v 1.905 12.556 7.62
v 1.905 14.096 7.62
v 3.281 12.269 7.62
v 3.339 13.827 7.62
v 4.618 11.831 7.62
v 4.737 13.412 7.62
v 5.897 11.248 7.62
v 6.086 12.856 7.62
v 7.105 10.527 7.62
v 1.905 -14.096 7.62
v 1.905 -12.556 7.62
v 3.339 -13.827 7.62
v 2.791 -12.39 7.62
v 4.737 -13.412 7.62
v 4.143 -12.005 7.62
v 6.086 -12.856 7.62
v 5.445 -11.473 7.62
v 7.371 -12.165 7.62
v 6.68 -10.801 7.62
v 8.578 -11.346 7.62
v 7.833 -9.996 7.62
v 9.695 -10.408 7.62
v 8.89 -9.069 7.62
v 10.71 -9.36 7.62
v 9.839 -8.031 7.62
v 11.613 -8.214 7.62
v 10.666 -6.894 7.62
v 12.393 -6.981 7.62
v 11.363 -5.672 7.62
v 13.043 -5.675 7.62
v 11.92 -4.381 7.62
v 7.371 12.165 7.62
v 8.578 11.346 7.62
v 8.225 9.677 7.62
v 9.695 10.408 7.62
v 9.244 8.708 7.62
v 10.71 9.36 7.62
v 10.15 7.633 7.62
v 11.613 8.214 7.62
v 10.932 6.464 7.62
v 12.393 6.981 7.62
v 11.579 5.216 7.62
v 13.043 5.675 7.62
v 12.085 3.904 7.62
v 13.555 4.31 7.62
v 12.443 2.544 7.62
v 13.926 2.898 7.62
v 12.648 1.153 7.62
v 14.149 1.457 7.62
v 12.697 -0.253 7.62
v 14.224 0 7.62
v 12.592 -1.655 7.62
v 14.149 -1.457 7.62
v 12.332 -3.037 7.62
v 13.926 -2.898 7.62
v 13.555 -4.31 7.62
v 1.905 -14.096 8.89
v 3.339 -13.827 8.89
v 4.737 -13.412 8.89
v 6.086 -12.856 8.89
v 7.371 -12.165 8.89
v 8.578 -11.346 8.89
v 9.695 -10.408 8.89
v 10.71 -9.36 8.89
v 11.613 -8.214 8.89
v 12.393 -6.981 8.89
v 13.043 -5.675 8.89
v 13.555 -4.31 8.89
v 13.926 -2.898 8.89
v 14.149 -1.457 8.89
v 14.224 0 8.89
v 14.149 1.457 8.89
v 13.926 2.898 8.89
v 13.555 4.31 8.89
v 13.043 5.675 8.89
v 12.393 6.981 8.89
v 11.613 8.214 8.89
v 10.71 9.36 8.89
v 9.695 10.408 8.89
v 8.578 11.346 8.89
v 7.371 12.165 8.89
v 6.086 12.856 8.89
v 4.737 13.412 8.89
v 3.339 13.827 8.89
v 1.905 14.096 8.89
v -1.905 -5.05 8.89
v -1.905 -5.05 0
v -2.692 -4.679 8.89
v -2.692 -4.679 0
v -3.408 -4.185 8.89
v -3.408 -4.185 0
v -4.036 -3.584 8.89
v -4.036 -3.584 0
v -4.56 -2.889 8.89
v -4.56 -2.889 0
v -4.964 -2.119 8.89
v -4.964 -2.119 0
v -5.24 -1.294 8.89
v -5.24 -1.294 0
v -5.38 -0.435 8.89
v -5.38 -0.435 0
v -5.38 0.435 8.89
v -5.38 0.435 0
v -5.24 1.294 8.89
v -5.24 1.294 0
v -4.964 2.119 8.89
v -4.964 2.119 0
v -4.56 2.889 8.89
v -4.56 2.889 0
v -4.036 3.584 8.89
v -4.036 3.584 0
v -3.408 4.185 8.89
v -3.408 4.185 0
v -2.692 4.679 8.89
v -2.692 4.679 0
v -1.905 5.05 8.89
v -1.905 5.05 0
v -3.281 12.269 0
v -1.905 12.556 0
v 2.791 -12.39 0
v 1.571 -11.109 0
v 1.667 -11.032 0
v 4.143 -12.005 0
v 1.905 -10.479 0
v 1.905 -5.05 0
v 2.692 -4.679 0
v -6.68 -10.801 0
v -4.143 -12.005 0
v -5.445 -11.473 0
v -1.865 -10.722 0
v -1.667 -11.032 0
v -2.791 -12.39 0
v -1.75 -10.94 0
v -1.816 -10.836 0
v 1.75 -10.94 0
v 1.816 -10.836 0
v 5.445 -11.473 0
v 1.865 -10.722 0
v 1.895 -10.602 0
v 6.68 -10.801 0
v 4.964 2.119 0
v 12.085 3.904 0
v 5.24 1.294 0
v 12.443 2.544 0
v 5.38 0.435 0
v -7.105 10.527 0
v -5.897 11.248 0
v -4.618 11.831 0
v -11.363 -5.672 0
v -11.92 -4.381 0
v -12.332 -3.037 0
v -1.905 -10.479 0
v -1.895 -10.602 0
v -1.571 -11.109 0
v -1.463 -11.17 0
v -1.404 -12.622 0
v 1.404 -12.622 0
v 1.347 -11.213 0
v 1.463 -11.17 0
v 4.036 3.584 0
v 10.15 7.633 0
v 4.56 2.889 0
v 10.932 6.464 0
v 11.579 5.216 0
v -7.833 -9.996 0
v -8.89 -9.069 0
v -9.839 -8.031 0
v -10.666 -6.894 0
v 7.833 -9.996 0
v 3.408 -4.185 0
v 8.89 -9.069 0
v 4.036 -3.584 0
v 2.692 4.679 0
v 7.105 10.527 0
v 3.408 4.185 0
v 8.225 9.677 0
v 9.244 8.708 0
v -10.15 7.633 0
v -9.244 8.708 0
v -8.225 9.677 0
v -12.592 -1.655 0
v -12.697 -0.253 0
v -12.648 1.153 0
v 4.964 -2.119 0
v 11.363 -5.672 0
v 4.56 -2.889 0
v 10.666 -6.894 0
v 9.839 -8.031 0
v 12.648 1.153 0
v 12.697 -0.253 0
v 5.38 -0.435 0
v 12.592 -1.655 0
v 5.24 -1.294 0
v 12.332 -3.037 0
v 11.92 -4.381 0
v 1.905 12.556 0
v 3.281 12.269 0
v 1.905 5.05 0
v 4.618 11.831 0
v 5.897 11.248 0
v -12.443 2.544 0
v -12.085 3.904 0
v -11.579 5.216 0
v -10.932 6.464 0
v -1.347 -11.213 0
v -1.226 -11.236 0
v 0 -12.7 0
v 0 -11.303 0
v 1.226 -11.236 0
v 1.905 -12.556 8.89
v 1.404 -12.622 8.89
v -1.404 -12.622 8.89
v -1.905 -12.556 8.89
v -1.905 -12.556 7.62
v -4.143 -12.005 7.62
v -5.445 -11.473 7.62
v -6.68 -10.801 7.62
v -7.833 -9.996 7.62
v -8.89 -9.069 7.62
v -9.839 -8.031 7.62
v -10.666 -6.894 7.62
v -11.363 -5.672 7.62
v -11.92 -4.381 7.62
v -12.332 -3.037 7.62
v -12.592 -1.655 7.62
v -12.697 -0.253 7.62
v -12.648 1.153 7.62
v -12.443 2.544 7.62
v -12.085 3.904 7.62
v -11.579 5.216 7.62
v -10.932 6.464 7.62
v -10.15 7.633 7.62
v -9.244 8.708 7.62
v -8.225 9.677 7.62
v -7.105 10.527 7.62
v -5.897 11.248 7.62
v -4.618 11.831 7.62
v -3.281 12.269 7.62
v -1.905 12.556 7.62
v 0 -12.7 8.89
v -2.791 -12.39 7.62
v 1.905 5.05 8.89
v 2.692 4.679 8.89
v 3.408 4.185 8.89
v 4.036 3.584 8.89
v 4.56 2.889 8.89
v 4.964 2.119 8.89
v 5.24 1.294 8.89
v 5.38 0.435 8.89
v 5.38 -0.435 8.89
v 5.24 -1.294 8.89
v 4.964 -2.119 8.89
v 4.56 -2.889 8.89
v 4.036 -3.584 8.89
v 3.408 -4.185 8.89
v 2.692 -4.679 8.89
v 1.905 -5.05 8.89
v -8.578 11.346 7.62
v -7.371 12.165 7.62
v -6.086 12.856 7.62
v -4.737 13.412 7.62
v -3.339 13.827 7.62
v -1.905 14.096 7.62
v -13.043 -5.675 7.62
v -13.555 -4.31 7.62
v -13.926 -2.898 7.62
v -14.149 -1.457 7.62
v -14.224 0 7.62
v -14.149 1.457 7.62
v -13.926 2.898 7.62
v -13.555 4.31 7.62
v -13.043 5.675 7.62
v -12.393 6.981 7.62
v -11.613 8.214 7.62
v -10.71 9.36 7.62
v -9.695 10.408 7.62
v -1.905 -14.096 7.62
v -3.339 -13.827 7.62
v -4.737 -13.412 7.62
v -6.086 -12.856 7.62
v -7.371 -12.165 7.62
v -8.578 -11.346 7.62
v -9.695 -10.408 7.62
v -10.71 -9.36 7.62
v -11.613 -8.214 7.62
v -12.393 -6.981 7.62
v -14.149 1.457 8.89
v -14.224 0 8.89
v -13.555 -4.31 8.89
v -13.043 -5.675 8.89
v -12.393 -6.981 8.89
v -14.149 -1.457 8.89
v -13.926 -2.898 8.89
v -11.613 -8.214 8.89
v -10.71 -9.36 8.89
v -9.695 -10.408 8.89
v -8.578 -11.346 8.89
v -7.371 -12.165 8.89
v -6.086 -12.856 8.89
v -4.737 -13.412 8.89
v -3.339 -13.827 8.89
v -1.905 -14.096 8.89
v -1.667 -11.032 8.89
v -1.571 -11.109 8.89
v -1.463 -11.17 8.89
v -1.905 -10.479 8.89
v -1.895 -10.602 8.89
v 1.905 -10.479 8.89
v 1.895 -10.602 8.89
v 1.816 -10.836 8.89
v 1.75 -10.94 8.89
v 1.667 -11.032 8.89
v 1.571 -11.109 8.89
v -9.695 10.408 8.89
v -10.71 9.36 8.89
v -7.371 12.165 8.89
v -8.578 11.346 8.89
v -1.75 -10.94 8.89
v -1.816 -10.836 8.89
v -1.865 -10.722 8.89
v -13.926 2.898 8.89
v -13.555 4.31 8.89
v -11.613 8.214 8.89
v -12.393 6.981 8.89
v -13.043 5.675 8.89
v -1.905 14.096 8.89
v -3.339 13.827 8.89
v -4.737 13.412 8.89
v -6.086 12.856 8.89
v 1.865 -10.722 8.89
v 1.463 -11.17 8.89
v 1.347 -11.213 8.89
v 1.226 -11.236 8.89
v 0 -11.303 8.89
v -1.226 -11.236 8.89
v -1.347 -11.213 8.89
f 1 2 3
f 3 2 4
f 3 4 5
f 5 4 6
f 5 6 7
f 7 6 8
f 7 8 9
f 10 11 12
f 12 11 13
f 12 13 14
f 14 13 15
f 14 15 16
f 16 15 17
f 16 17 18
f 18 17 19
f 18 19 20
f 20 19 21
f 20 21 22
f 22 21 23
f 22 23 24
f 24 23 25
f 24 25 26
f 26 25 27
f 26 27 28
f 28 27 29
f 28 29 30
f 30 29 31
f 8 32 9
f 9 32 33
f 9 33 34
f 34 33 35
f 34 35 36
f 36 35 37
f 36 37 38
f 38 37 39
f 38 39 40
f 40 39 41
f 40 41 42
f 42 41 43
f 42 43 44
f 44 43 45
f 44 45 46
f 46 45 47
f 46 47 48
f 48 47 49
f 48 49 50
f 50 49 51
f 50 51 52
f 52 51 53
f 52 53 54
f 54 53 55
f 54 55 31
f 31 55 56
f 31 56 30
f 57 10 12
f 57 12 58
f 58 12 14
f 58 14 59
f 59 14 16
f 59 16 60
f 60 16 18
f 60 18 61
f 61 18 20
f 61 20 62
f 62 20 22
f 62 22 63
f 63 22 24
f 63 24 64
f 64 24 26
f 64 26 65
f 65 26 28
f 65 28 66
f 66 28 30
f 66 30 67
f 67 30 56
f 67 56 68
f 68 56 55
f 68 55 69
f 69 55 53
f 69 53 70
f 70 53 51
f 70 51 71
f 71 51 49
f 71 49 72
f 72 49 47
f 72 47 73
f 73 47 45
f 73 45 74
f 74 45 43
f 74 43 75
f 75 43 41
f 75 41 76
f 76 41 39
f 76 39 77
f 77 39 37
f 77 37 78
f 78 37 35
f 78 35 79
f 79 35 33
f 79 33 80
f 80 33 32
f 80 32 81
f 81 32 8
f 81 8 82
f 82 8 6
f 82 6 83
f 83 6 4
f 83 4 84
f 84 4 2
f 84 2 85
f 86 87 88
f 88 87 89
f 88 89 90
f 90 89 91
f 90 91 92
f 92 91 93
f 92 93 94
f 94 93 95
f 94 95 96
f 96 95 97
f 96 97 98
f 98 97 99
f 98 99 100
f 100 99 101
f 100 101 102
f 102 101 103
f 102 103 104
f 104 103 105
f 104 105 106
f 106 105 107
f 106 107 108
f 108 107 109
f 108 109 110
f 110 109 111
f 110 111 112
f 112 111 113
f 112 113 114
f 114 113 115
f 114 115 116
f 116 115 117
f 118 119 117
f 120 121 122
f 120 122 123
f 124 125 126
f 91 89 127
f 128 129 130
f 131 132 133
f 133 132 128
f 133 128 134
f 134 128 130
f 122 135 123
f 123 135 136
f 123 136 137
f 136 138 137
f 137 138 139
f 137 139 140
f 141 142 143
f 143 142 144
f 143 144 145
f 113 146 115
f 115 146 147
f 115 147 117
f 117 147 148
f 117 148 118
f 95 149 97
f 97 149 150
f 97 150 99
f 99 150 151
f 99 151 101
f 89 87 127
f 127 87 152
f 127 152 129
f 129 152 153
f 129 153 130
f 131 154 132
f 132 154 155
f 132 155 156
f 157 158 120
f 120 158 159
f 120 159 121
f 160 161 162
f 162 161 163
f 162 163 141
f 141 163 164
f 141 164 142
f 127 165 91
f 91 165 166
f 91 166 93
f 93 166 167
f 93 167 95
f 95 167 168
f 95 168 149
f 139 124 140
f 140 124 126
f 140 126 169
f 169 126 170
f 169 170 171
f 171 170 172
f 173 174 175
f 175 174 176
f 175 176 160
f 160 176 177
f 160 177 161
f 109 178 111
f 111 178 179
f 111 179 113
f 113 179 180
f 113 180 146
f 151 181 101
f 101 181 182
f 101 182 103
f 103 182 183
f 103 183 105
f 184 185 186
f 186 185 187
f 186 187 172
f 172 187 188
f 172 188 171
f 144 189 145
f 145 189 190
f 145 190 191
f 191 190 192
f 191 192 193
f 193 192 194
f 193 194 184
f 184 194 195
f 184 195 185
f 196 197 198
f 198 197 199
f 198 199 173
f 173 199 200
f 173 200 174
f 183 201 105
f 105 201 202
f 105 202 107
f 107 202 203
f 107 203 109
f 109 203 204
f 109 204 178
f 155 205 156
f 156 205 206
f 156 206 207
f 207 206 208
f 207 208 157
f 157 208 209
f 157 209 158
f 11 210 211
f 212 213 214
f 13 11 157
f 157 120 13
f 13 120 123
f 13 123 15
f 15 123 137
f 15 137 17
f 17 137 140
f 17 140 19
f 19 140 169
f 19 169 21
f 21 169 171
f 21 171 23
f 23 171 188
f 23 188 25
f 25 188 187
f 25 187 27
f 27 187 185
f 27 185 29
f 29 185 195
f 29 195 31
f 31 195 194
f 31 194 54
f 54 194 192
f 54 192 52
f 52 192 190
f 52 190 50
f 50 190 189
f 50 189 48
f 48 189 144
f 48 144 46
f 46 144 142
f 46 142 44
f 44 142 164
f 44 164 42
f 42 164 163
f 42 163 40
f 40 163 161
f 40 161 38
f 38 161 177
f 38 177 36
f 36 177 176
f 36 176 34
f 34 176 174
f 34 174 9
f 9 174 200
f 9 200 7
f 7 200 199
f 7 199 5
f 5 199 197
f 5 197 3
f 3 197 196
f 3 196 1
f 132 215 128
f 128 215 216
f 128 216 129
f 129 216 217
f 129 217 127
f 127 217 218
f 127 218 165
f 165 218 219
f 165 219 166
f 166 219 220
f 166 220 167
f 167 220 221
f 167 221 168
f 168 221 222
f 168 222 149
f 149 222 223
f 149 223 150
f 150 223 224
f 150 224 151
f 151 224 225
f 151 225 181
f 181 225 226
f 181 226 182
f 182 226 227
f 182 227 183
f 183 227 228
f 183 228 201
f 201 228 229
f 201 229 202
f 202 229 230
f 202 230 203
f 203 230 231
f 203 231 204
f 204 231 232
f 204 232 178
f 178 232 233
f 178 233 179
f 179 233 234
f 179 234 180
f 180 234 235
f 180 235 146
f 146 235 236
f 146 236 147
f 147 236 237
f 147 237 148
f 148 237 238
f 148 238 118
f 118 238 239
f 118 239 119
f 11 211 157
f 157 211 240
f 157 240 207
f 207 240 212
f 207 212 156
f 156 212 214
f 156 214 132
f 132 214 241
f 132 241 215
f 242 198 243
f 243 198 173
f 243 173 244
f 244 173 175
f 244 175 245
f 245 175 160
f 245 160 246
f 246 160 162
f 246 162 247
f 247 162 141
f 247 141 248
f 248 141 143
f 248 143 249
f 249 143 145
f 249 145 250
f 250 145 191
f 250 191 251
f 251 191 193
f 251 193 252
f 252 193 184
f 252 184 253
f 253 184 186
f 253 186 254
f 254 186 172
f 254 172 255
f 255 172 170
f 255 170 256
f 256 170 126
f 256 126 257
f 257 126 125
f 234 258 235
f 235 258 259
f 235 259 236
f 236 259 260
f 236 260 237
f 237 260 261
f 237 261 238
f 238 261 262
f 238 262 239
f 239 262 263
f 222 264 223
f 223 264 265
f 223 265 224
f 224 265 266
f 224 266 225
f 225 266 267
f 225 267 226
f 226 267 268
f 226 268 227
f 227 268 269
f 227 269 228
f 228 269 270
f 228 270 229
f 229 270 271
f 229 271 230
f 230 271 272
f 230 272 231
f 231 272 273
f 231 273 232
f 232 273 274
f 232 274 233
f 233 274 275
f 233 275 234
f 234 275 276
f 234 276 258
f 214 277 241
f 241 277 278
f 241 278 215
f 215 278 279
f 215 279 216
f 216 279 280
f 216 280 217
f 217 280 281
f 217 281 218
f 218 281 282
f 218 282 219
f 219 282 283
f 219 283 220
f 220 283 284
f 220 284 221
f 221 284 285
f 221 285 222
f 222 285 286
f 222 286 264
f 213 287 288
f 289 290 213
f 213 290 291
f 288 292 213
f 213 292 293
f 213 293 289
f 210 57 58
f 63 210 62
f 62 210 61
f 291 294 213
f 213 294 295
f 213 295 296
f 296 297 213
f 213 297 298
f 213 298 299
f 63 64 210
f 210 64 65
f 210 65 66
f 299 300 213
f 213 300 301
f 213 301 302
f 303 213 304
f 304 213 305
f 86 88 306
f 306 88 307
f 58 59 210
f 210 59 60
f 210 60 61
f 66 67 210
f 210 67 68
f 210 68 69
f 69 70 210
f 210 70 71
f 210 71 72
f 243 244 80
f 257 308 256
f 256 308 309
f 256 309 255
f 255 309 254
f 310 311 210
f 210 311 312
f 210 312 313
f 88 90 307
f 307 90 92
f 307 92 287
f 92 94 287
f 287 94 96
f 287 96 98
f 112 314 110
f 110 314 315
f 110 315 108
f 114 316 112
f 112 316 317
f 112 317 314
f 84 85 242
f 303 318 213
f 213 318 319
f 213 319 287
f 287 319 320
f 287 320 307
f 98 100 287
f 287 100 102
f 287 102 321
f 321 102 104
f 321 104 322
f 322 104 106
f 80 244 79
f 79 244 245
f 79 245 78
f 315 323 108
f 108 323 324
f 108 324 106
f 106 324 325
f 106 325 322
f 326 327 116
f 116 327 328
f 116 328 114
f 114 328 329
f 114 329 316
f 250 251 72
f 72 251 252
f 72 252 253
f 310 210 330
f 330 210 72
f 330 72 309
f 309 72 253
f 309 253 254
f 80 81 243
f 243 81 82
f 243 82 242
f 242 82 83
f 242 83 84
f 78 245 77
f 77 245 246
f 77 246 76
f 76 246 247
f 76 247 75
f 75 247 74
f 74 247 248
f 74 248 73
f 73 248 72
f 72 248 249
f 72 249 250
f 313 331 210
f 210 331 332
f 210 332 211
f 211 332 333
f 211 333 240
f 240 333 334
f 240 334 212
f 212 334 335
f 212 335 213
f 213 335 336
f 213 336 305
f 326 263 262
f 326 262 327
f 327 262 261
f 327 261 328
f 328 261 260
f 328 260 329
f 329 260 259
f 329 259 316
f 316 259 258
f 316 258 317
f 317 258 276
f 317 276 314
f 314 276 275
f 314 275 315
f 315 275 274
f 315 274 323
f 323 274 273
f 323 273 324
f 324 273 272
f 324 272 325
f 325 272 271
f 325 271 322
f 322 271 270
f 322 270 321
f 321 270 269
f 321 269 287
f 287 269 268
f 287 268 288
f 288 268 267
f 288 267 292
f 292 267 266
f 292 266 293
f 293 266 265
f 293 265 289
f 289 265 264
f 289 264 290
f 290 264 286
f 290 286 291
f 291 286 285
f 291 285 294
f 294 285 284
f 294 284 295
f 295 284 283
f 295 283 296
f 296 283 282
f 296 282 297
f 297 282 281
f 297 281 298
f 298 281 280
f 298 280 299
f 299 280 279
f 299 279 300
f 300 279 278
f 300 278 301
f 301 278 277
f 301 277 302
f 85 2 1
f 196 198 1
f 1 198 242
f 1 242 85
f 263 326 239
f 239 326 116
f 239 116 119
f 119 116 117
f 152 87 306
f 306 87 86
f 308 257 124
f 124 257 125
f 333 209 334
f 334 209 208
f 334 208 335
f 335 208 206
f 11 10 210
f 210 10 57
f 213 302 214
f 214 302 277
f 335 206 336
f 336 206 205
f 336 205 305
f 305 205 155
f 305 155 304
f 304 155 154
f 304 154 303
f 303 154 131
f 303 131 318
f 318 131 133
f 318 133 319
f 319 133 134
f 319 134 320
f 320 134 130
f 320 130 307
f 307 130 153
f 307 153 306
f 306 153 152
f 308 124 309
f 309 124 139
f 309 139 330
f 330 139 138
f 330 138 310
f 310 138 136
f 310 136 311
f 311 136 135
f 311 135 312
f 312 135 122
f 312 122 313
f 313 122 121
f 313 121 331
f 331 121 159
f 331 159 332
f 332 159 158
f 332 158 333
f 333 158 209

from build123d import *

# Parameters (mm, degrees)
SKETCH1_R           = 12.7
SKETCH1_R_2         = 5.3975
BOSS_EXTRUDE1_DEPTH = 7.62
SKETCH2_R           = 14.224
SKETCH2_R_2         = 5.3975
BOSS_EXTRUDE2_DEPTH = 1.27
CUT_EXTRUDE1_DEPTH  = 9.89
CUT_EXTRUDE2_DEPTH  = 2.27
FILLET1_R           = 0.762


with BuildPart() as part:
    # Sketch1 → Boss-Extrude1 (new body)
    with BuildSketch(Plane.XY):
        Circle(SKETCH1_R)
        Circle(SKETCH1_R_2, mode=Mode.SUBTRACT)
    extrude(amount=BOSS_EXTRUDE1_DEPTH)

    # Sketch2 → Boss-Extrude2 (add)
    with BuildSketch(Plane.XY.offset(7.62)):
        Circle(SKETCH2_R)
        Circle(SKETCH2_R_2, mode=Mode.SUBTRACT)
    extrude(amount=BOSS_EXTRUDE2_DEPTH)

    # Sketch3 → Cut-Extrude1 (cut, through all)
    with BuildSketch(Plane(origin=(0, 0, 0), x_dir=(-1, 0, 0), z_dir=(0, 0, -1))):
        with BuildLine():
            Line((-1.905, 14.224), (1.905, 14.224))
            Line((1.905, 14.224), (1.905, -11.141309797))
            ThreePointArc((1.905, -11.141309797), (0, -11.303), (-1.905, -11.141309797))
            Line((-1.905, -11.141309797), (-1.905, 14.224))
        make_face()
    extrude(amount=-CUT_EXTRUDE1_DEPTH, mode=Mode.SUBTRACT)

    # Sketch4 → Cut-Extrude2 (cut, through all)
    with BuildSketch(Plane(origin=(0, 0, 7.62), x_dir=(-1, 0, 0), z_dir=(0, 0, -1))):
        with BuildLine():
            Line((-1.905, -14.224), (-1.905, -12.556312158))
            ThreePointArc((-1.905, -12.556312158), (0, -12.7), (1.905, -12.556312158))
            Line((1.905, -12.556312158), (1.905, -14.224))
            Line((1.905, -14.224), (-1.905, -14.224))
        make_face()
    extrude(amount=-CUT_EXTRUDE2_DEPTH, mode=Mode.SUBTRACT)

    # Fillet1
    fillet1_edges = [part.edges().sort_by_distance(p)[0] for p in [
        (1.905, -11.141309797, 4.445),
        (-1.905, -11.141309797, 4.445),
    ]]
    fillet(fillet1_edges, radius=FILLET1_R)


solid = part.part
